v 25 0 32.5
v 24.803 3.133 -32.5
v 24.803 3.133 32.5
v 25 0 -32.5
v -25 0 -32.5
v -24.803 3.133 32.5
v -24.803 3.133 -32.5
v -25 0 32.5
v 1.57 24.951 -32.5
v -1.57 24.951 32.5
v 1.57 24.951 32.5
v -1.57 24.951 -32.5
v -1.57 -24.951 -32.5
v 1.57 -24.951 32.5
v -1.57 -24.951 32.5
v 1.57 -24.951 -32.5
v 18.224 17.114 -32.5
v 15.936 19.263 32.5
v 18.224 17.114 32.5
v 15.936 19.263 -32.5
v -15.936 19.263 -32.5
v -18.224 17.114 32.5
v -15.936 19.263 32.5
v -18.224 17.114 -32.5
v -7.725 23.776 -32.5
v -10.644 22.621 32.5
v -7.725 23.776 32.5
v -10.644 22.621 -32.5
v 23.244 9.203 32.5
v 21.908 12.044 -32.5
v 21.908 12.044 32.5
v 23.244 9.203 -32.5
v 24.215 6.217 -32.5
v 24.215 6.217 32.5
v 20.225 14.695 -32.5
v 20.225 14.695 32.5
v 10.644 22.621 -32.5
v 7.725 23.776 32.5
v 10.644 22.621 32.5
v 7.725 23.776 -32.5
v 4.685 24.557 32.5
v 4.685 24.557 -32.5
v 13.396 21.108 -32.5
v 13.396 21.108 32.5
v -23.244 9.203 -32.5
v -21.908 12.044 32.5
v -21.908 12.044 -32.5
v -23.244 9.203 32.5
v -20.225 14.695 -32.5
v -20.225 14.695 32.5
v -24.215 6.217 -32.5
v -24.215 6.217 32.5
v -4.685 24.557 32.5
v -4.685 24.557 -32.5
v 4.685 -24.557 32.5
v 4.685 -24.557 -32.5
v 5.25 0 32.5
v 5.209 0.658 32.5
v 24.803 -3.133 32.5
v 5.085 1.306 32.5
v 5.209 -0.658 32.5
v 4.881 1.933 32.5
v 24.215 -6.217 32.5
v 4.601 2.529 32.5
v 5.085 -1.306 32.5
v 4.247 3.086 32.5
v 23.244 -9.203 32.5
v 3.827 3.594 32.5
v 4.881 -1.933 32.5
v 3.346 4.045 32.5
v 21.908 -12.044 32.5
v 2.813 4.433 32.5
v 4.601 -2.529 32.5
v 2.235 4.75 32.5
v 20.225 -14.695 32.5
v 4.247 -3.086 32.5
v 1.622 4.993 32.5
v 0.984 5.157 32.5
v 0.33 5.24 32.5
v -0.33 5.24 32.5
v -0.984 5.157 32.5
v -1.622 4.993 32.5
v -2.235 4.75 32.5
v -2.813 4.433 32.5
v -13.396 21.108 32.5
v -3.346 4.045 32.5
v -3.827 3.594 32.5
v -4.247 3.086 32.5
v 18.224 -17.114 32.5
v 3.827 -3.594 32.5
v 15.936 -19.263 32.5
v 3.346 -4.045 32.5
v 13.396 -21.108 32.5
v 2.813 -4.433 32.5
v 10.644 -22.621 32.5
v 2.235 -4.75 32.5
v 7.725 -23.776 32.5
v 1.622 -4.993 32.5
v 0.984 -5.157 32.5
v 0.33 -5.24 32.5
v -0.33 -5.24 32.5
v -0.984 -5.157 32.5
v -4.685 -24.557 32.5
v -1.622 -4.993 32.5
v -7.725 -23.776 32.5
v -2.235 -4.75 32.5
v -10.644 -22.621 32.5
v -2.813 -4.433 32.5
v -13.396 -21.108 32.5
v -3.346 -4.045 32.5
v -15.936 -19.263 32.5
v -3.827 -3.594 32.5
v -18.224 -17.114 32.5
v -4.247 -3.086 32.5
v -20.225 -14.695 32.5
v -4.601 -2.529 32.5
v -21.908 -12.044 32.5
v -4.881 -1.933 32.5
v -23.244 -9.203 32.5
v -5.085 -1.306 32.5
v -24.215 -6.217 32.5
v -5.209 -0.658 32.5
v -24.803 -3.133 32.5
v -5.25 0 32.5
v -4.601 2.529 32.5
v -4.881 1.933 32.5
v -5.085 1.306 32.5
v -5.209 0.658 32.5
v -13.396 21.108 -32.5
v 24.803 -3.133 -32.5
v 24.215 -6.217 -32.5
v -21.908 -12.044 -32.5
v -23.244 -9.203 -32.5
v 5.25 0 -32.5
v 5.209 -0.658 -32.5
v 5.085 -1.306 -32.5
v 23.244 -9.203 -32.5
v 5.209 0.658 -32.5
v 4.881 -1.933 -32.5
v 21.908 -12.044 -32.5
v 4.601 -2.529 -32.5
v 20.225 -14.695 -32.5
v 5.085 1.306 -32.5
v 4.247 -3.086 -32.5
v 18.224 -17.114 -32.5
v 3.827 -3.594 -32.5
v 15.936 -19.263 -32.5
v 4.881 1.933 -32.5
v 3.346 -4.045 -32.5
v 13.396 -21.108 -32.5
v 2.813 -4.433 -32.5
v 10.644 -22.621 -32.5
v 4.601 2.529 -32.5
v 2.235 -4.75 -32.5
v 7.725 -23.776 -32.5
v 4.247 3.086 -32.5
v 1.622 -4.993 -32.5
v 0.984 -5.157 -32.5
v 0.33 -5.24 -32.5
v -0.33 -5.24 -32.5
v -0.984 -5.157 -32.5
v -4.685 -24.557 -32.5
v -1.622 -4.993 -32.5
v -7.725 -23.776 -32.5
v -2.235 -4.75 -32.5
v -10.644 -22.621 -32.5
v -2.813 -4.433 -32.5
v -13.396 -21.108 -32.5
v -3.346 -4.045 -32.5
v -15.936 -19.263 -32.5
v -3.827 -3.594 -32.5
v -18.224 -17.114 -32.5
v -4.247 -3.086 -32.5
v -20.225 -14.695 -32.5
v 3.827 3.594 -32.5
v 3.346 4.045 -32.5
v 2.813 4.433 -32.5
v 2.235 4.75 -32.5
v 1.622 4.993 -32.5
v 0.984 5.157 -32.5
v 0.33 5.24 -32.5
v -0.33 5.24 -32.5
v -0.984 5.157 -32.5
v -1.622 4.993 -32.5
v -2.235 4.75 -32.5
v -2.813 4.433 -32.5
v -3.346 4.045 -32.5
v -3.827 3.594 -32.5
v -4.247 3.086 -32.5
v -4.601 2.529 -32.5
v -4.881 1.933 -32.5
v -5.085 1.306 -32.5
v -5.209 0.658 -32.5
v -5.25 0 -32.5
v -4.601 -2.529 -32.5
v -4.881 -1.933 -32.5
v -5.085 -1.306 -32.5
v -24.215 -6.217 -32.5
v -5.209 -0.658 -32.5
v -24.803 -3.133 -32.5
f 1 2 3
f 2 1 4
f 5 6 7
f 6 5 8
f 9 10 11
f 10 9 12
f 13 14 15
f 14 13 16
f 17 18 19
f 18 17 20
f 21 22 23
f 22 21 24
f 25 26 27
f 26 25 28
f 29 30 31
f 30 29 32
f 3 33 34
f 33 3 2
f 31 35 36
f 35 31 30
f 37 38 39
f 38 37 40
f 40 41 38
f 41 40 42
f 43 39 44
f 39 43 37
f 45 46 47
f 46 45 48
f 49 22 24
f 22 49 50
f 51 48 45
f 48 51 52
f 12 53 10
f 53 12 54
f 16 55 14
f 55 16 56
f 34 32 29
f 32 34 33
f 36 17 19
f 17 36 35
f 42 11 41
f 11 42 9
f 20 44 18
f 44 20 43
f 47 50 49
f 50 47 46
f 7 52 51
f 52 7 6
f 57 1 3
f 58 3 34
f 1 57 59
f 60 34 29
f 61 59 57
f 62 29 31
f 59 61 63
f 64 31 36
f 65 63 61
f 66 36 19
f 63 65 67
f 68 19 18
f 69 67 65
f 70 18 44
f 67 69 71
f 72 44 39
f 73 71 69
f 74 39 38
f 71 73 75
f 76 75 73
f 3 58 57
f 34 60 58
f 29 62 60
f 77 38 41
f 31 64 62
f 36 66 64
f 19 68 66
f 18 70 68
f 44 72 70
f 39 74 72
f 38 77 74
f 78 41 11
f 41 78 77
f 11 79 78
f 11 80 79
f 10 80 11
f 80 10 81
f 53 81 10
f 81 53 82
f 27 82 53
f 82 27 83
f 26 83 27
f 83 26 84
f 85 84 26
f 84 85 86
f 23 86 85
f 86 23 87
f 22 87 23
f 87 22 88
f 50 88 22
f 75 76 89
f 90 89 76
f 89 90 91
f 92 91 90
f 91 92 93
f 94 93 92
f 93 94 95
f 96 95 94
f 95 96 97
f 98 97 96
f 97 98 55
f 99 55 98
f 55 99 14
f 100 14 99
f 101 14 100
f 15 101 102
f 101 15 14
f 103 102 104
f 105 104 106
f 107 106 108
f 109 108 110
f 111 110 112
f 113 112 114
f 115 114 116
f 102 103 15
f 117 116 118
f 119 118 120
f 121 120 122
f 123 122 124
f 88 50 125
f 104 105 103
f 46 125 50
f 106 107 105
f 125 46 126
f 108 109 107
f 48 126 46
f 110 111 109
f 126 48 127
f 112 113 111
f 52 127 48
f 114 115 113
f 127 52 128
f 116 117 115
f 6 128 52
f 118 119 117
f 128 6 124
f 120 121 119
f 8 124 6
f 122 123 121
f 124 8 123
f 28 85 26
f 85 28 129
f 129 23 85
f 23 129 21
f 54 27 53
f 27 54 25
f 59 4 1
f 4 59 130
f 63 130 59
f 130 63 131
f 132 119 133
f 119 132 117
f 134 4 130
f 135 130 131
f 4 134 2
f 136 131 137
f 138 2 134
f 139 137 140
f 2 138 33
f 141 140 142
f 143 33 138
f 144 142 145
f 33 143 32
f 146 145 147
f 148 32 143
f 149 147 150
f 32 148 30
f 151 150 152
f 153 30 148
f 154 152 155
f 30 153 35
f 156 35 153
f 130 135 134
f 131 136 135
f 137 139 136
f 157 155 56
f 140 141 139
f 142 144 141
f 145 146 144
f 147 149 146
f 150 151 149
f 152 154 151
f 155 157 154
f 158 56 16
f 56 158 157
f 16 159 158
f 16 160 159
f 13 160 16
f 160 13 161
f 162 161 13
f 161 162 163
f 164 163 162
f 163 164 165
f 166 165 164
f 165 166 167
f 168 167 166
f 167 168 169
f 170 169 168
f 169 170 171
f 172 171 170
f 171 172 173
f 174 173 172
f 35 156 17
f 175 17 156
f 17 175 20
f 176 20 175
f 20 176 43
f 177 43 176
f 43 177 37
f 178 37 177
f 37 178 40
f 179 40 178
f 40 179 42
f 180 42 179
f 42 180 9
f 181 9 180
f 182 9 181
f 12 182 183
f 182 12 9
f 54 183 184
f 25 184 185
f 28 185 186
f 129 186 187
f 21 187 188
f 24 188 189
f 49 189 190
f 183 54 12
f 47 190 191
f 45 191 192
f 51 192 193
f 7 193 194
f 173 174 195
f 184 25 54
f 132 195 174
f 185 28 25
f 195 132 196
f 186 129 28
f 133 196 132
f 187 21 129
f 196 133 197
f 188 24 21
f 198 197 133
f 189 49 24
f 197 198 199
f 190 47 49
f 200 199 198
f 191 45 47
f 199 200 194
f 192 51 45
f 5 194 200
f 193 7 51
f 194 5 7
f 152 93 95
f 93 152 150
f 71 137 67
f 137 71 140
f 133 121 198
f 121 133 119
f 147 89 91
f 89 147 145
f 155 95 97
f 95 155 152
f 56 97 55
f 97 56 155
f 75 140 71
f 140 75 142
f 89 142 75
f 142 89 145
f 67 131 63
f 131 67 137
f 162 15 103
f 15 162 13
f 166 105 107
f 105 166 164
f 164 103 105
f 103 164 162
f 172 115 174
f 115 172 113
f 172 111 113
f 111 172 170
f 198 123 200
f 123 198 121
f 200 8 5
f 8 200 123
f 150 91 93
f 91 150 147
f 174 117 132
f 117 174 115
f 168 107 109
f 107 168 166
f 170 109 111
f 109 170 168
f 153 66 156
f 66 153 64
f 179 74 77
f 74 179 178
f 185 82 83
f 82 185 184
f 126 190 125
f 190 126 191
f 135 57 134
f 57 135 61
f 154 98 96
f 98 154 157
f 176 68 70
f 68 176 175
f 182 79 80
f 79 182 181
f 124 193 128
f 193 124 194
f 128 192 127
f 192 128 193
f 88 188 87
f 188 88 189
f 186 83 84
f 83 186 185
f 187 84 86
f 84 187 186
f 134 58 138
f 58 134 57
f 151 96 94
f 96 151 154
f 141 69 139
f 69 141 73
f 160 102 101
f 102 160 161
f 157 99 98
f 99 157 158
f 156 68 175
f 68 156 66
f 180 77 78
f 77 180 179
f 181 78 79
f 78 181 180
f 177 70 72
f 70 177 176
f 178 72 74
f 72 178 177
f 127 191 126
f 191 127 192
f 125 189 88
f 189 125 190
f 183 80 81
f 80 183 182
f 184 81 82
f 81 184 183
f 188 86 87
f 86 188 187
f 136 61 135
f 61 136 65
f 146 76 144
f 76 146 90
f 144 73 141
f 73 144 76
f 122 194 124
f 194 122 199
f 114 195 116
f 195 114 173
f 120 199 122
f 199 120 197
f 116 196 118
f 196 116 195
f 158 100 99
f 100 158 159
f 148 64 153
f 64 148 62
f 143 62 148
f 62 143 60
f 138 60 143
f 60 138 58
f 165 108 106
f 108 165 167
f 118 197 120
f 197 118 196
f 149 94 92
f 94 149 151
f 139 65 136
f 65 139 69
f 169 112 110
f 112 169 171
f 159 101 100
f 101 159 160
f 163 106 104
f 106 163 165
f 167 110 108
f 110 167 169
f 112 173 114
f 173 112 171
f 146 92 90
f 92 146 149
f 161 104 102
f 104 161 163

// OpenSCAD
$fn = 50;


difference() {
	union() {
		translate(v = [0, 0, -32.5000000000]) {
			cylinder(h = 65, r = 25.0000000000);
		}
	}
	union() {
		translate(v = [0, 0, -100.0000000000]) {
			cylinder(h = 200, r = 5.2500000000);
		}
	}
}
